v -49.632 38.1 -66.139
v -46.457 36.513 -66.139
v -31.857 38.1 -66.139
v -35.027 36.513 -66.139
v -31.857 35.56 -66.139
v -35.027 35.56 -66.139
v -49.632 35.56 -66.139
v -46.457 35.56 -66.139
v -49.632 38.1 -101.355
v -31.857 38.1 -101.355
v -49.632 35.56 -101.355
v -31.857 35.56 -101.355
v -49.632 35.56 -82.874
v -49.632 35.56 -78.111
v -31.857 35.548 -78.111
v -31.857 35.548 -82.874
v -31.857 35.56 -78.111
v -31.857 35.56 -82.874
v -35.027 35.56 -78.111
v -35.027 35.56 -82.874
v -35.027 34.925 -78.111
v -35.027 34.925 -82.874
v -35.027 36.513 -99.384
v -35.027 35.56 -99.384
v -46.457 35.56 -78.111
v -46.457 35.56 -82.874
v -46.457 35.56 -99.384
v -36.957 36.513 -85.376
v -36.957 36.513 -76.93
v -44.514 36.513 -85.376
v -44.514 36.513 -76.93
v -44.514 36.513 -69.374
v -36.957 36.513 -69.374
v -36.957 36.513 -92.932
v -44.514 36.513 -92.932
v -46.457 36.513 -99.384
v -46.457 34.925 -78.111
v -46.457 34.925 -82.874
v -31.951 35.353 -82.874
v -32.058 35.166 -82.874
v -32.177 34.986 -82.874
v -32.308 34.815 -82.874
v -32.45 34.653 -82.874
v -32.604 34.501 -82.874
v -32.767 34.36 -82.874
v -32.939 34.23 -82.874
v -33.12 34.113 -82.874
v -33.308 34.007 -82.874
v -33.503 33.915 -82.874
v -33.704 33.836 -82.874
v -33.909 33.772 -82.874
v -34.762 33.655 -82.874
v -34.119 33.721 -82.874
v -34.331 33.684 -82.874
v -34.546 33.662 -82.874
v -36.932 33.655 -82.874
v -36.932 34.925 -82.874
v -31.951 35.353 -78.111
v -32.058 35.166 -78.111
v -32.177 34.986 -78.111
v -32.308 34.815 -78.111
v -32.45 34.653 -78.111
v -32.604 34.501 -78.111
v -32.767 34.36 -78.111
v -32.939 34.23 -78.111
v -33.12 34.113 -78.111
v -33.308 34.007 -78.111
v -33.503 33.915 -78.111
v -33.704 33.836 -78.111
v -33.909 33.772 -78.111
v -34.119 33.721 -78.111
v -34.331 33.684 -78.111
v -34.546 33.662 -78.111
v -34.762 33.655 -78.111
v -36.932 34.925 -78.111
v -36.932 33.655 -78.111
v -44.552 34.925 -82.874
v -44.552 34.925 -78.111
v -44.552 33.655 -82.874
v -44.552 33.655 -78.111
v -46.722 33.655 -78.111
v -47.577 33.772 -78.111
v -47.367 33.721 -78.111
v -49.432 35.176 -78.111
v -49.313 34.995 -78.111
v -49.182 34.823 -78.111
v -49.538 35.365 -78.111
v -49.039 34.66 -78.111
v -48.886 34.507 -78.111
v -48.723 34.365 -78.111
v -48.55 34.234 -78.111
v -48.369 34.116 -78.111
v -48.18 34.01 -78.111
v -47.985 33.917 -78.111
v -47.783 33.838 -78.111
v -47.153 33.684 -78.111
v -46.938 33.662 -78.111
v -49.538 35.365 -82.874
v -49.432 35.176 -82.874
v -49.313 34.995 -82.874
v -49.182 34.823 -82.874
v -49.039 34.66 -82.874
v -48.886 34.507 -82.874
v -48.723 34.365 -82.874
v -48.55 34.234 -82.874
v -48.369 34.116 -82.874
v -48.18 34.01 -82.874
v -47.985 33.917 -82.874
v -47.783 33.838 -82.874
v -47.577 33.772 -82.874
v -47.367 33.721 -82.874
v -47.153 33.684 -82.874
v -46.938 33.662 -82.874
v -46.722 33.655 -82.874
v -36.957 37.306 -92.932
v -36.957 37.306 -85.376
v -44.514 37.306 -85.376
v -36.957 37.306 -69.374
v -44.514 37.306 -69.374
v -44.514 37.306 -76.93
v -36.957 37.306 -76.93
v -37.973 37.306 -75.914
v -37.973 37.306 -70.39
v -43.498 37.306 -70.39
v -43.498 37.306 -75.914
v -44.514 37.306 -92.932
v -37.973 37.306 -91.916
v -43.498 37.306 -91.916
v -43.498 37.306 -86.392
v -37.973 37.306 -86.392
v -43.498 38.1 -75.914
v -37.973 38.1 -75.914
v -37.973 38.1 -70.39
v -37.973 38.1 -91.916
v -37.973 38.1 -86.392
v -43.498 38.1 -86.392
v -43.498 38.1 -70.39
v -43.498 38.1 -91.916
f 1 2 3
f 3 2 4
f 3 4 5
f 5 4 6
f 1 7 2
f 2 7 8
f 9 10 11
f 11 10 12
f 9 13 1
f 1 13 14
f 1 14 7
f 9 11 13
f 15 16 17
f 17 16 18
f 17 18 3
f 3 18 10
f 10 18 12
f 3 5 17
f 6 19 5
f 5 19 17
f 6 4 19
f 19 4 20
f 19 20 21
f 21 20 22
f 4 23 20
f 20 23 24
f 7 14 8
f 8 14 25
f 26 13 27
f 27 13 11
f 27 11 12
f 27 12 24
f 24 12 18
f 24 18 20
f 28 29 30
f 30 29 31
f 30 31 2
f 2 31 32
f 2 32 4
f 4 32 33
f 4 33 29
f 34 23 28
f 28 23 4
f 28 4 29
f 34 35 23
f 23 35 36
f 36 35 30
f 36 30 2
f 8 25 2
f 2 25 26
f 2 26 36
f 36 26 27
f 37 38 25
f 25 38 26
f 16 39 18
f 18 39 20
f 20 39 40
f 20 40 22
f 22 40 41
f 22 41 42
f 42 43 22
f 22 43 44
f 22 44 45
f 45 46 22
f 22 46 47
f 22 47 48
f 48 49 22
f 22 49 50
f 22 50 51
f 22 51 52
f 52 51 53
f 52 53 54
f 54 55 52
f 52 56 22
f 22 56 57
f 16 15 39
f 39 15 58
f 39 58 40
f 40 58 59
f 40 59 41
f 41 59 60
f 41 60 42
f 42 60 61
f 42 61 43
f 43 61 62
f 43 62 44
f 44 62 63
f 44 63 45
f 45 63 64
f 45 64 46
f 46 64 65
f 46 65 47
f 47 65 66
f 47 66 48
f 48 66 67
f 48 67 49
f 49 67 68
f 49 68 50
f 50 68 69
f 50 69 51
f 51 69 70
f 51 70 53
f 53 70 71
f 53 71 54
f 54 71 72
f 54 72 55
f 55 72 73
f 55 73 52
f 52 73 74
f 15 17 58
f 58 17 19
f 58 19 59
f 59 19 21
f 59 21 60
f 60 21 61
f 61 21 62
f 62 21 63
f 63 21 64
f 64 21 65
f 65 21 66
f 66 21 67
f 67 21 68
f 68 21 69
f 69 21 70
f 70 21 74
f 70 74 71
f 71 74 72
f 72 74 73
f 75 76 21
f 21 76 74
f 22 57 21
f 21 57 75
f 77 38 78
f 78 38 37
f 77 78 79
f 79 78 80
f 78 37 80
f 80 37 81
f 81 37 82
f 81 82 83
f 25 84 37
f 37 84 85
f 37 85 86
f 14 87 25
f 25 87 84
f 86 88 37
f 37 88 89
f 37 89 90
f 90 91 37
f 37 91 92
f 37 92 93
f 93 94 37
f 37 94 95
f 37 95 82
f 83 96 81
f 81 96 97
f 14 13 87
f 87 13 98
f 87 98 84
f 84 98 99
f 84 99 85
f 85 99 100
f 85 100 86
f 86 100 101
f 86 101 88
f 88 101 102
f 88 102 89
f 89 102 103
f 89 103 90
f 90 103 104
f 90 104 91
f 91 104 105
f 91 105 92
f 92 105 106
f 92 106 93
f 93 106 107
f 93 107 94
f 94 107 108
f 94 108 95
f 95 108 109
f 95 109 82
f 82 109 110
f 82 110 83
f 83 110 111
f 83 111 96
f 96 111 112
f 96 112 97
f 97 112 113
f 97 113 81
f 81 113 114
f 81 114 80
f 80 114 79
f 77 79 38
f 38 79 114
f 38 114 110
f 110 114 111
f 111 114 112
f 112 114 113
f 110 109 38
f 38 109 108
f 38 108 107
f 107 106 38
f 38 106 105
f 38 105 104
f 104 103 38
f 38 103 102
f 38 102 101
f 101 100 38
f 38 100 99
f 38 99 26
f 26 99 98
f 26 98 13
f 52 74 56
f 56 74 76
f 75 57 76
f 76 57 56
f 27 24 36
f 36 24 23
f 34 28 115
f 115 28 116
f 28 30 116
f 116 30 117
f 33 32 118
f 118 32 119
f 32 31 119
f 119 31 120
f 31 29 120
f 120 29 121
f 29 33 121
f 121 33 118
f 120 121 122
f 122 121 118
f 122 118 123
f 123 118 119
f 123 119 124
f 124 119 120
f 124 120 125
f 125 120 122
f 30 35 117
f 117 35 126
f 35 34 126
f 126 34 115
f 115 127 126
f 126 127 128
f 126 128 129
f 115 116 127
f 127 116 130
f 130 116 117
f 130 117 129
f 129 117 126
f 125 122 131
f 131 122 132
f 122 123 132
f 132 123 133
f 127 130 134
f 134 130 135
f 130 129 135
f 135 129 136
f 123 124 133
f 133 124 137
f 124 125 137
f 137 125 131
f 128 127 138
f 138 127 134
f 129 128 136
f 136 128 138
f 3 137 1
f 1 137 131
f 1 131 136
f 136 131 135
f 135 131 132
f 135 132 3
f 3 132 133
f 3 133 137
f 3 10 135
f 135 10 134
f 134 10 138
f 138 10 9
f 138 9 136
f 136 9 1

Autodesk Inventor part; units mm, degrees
ref_plane "YZ Plane" through (0, 0, 0) normal (1, 0, 0) x (0, 1, 0)
ref_plane "XZ Plane" through (0, 0, 0) normal (0, 1, 0) x (-1, 0, 0)
ref_plane "XY Plane" through (0, 0, 0) normal (0, 0, 1) x (1, 0, 0)
sketch "Sketch1" plane through (0, 0, 0) normal (0, 1, 0) x (-1, 0, 0)
  line L0 (0, 0) -> (177.8, 0)
  line L1 (177.8, 0) -> (177.8, -114.3)
  line L2 (177.8, -114.3) -> (0, -114.3)
  line L3 (0, -114.3) -> (0, 0)
  dimension "d0" = 177.8
  dimension "d1" = 114.3
extrude "Extrusion1" add sketch "Sketch1" along normal blind 38.1
sketch "Sketch2" plane through (0, 0, 0) normal (0, -1, 0) x (1, 0, 0)
  line L0 (-177.8, -114.3) -> (-177.8, 0) projected
  line L1 (0, 0) -> (-177.8, 0)
  line L2 (-177.8, 0) -> (-177.8, -114.3)
  line L3 (-177.8, -114.3) -> (0, -114.3)
  line L4 (0, -114.3) -> (0, 0)
  line L5 (-5.08, -5.08) -> (-172.72, -5.08)
  line L6 (-172.72, -5.08) -> (-172.72, -109.22)
  line L7 (-172.72, -109.22) -> (-5.08, -109.22)
  line L8 (-5.08, -109.22) -> (-5.08, -5.08)
  dimension "d4" = 5.08
extrude "Extrusion2" cut sketch "Sketch2" against normal blind 35.56 contours L8 L7 L6 L5
fillet "Fillet1" radius 3.175 4 edges at (-177.8, 38.1, -57.15) (-88.9, 38.1, 0) (-88.9, 38.1, -114.3) (0, 38.1, -57.15)
sketch "Sketch3" plane through (0, 38.1, 0) normal (0, 1, 0) x (1, 0, 0)
  line L0 (-177.8, 114.3) -> (-171.45, 114.3)
  line L1 (-171.45, 114.3) -> (-171.45, 0)
  line L2 (-171.45, 0) -> (-177.8, 0)
  line L3 (-177.8, 0) -> (-177.8, 114.3)
  line L4 (0, 114.3) -> (-177.8, 114.3) projected
  line L5 (-177.8, 114.3) -> (0, 114.3)
  line L6 (0, 114.3) -> (0, 107.95)
  line L7 (0, 107.95) -> (-177.8, 107.95)
  line L8 (-177.8, 107.95) -> (-177.8, 114.3)
  line L9 (-158.75, 100.4887) -> (-100.6475, 100.4887)
  line L10 (-100.6475, 100.4887) -> (-100.6475, 13.8112)
  line L11 (-100.6475, 13.8112) -> (-158.75, 13.8112)
  line L12 (-158.75, 13.8112) -> (-158.75, 100.4887)
  point P0 (0, 0)
  dimension "d8" = 6.35
  dimension "d9" = 6.35
  dimension "d10" = 58.1025
  dimension "d11" = 86.6775
  dimension "d12" = 13.8112
  dimension "d13" = 19.05
extrude "Extrusion3" cut sketch "Sketch3" against normal blind 35.56 contours L9 L10 L11 L12
sketch "Sketch4" plane through (0, 38.1, 0) normal (0, 1, 0) x (1, 0, 0)
  line L0 (-94.2975, 17.78) -> (-81.2088, 17.78)
  line L1 (-91.7575, 20.32) -> (-91.7575, 26.67)
  line L2 (-91.7575, 26.67) -> (-94.2975, 26.67)
  line L3 (-94.2975, 26.67) -> (-94.2975, 17.78)
  line L4 (-94.2975, 17.78) -> (-78.6765, 17.78)
  line L5 (-78.6765, 17.78) -> (-78.6765, 20.32)
  line L6 (-94.2975, 24.2647) -> (-94.2975, 17.78)
  line L7 (-85.6615, 20.32) -> (-85.6615, 24.13)
  line L8 (-85.6615, 24.13) -> (-88.2015, 24.13)
  line L9 (-88.2015, 24.13) -> (-88.2015, 20.32)
  line L10 (-78.6765, 20.32) -> (-85.6615, 20.32)
  line L11 (-88.2015, 20.32) -> (-91.7575, 20.32)
  line L12 (-100.6475, 100.4887) -> (-100.6475, 13.8112) projected
  line L13 (-177.8, 0) -> (0, 0) projected
  line L14 (-94.2975, 27.94) -> (-78.6765, 27.94)
  line L15 (-78.6765, 27.94) -> (-78.6765, 30.7699)
  line L16 (-81.2165, 30.48) -> (-94.2975, 30.48)
  line L17 (-94.2975, 30.48) -> (-94.2975, 27.94)
  line L18 (-83.0828, 27.94) -> (-78.6765, 27.94)
  line L19 (-78.6765, 27.94) -> (-78.6765, 36.83)
  line L20 (-78.6765, 36.83) -> (-81.2165, 36.83)
  line L21 (-81.2165, 36.83) -> (-81.2165, 30.48)
  ellipse E0 centre (-86.487, 41.91) end of major axis (-94.2975, 41.91) minor radius 5.334
  ellipse E1 centre (-86.487, 53.34) end of major axis (-94.2975, 53.34) minor radius 5.334
  line L22 (-94.2975, 60.96) -> (-78.6765, 60.96)
  line L23 (-78.6765, 60.96) -> (-78.6765, 63.754)
  line L24 (-94.2975, 63.754) -> (-94.2975, 60.96)
  ellipse E2 centre (-86.487, 63.754) end of major axis (-94.2975, 63.754) minor radius 7.62 (-78.6765, 63.754) -> (-94.2975, 63.754) ccw
  line L25 (-91.7575, 63.754) -> (-91.7575, 63.5)
  line L26 (-91.7575, 63.5) -> (-81.2165, 63.5)
  line L27 (-81.2165, 63.5) -> (-81.2165, 63.754)
  line L28 (-94.2975, 82.55) -> (-78.6765, 82.55)
  line L29 (-78.6765, 82.55) -> (-78.6765, 80.01)
  line L30 (-78.6765, 80.01) -> (-94.2975, 80.01)
  line L31 (-94.2975, 80.01) -> (-94.2975, 82.55)
  line L32 (-91.7575, 89.535) -> (-78.6765, 89.535)
  line L33 (-78.6765, 89.535) -> (-78.6765, 92.075)
  line L34 (-78.6765, 92.075) -> (-91.7575, 92.075)
  line L35 (-94.2975, 94.8241) -> (-94.2975, 91.9305)
  line L36 (-94.2975, 85.09) -> (-91.7575, 85.09)
  line L37 (-91.7575, 96.52) -> (-94.2975, 96.52)
  line L38 (-94.2975, 96.52) -> (-94.2975, 85.09)
  line L39 (-91.7575, 85.09) -> (-91.7575, 89.535)
  line L40 (-91.7575, 92.075) -> (-91.7575, 96.52)
  spline S0 degree 5 poles (-91.7575, 41.91) (-91.7584, 41.6813) (-91.6944, 41.4527) (-91.5885, 41.2473) (-91.2042, 40.6846) (-90.6636, 40.2564) (-90.282, 40.0177) (-89.3306, 39.5478) (-88.3046, 39.2718) (-87.7026, 39.1679) (-86.487, 39.0641) (-85.2714, 39.1679) (-84.6694, 39.2718) (-83.6435, 39.5478) (-82.692, 40.0176) (-82.3107, 40.2563) (-81.7696, 40.6845) (-81.3858, 41.2473) (-81.2787, 41.4526) (-81.1539, 41.91) (-81.2787, 42.3674) (-81.3858, 42.5727) (-81.7696, 43.1355) (-82.3107, 43.5637) (-82.692, 43.8024) (-83.6435, 44.2722) (-84.6694, 44.5482) (-85.2714, 44.6521) (-86.487, 44.7559) (-87.7026, 44.6521) (-88.3046, 44.5482) (-89.3306, 44.2722) (-90.282, 43.8023) (-90.6636, 43.5636) (-91.2042, 43.1354) (-91.5885, 42.5727) (-91.6944, 42.3673) (-91.7584, 42.1387) (-91.7575, 41.91) knots 0 0 0 0 0 0 0.044471 0.044471 0.044471 0.131758 0.131758 0.131758 0.25 0.25 0.25 0.36824 0.36824 0.36824 0.455522 0.455522 0.455522 0.5 0.5 0.5 0.544478 0.544478 0.544478 0.63176 0.63176 0.63176 0.75 0.75 0.75 0.868242 0.868242 0.868242 0.955529 0.955529 0.955529 1 1 1 1 1 1
  spline S1 degree 5 poles (-91.7575, 53.34) (-91.7584, 53.1113) (-91.6944, 52.8827) (-91.5885, 52.6773) (-91.2042, 52.1146) (-90.6636, 51.6864) (-90.282, 51.4477) (-89.3306, 50.9778) (-88.3046, 50.7018) (-87.7026, 50.5979) (-86.487, 50.4941) (-85.2714, 50.5979) (-84.6694, 50.7018) (-83.6435, 50.9778) (-82.692, 51.4476) (-82.3107, 51.6863) (-81.7696, 52.1145) (-81.3858, 52.6773) (-81.2787, 52.8826) (-81.1539, 53.34) (-81.2787, 53.7974) (-81.3858, 54.0027) (-81.7696, 54.5655) (-82.3107, 54.9937) (-82.692, 55.2324) (-83.6435, 55.7022) (-84.6694, 55.9782) (-85.2714, 56.0821) (-86.487, 56.1859) (-87.7026, 56.0821) (-88.3046, 55.9782) (-89.3306, 55.7022) (-90.282, 55.2323) (-90.6636, 54.9936) (-91.2042, 54.5654) (-91.5885, 54.0027) (-91.6944, 53.7973) (-91.7584, 53.5687) (-91.7575, 53.34) knots 0 0 0 0 0 0 0.044471 0.044471 0.044471 0.131758 0.131758 0.131758 0.25 0.25 0.25 0.36824 0.36824 0.36824 0.455522 0.455522 0.455522 0.5 0.5 0.5 0.544478 0.544478 0.544478 0.63176 0.63176 0.63176 0.75 0.75 0.75 0.868242 0.868242 0.868242 0.955529 0.955529 0.955529 1 1 1 1 1 1
  spline S2 degree 5 poles (-81.2165, 63.754) (-81.2166, 64.309) (-81.2953, 64.8639) (-81.4525, 65.404) (-82.1282, 66.8995) (-83.3585, 68.0474) (-84.3453, 68.5716) (-86.487, 69.0964) (-88.6287, 68.5716) (-89.6155, 68.0474) (-90.8458, 66.8995) (-91.5215, 65.404) (-91.6787, 64.8639) (-91.7574, 64.309) (-91.7575, 63.754) knots 0 0 0 0 0 0 0.170659 0.170659 0.170659 0.5 0.5 0.5 0.829341 0.829341 0.829341 1 1 1 1 1 1
  point P0 (-94.2975, 93.3773)
  point P1 (-88.9, 0)
  point P2 (-93.0275, 85.09)
  dimension "d32" = 5.334
  dimension "d33" = 7.8105
  dimension "d36" = 7.8105
  dimension "d37" = 5.334
  dimension "d42" = 7.62
  dimension "d43" = 2.54
  dimension "d16" = 2.54
  dimension "d17" = 3.556
  dimension "d18" = 2.54
  dimension "d19" = 6.985
  dimension "d20" = 8.89
  dimension "d21" = 6.35
  dimension "d22" = 3.81
  dimension "d23" = 3.81
  dimension "d24" = 6.35
  dimension "d25" = 17.78
  dimension "d26" = 2.54
  dimension "d27" = 2.54
  dimension "d28" = 6.35
  dimension "d29" = 15.621
  dimension "d30" = 6.35
  dimension "d31" = 27.94
  dimension "d34" = 14.1605
  dimension "d35" = 41.91
  dimension "d38" = 14.1605
  dimension "d39" = 53.34
  dimension "d40" = 2.54
  dimension "d41" = 2.54
  dimension "d44" = 6.35
  dimension "d45" = 15.621
  dimension "d46" = 60.96
  dimension "d47" = 2.794
  dimension "d48" = 63.754
  dimension "d49" = 14.1605
  dimension "d50" = 2.54
  dimension "d51" = 15.621
  dimension "d52" = 4.445
  dimension "d53" = 4.445
  dimension "d54" = 2.54
  dimension "d55" = 2.54
  dimension "d56" = 6.35
  dimension "d57" = 80.01
  dimension "d58" = 2.54
  dimension "d59" = 13.081
  dimension "d62" = 3.9688
  dimension "d63" = 3.9688
extrude "Extrusion4" cut sketch "Sketch4" against normal blind 1.27
sketch "Sketch5" plane through (0, 38.1, 0) normal (0, 1, 0) x (1, 0, 0)
  line L0 (-43.4975, 22.3838) -> (-37.973, 22.3838)
  line L1 (-37.973, 22.3838) -> (-37.973, 27.9083)
  line L2 (-37.973, 27.9083) -> (-43.4975, 27.9083)
  line L3 (-43.4975, 27.9083) -> (-43.4975, 22.3838)
  line L4 (-43.4975, 38.3858) -> (-37.973, 38.3858)
  line L5 (-37.973, 38.3858) -> (-37.973, 43.9103)
  line L6 (-37.973, 43.9103) -> (-43.4975, 43.9103)
  line L7 (-43.4975, 43.9103) -> (-43.4975, 38.3858)
  line L8 (-43.4975, 54.3878) -> (-37.973, 54.3878)
  line L9 (-37.973, 54.3878) -> (-37.973, 59.9123)
  line L10 (-37.973, 59.9123) -> (-43.4975, 59.9123)
  line L11 (-43.4975, 59.9123) -> (-43.4975, 54.3878)
  line L12 (-43.4975, 70.3897) -> (-37.973, 70.3897)
  line L13 (-37.973, 70.3897) -> (-37.973, 75.9143)
  line L14 (-37.973, 75.9143) -> (-43.4975, 75.9142)
  line L15 (-43.4975, 75.9142) -> (-43.4975, 70.3897)
  line L16 (-43.4975, 86.3918) -> (-37.973, 86.3918)
  line L17 (-37.973, 86.3918) -> (-37.973, 91.9163)
  line L18 (-37.973, 91.9163) -> (-43.4975, 91.9163)
  line L19 (-43.4975, 91.9163) -> (-43.4975, 86.3918)
  line L20 (0, 114.3) -> (-177.8, 114.3) projected
  line L21 (-177.8, 0) -> (0, 0) projected
  line L22 (-100.6475, 100.4887) -> (-100.6475, 13.8112) projected
  circle A0 centre (-21.9075, 25.4) radius 3.81
  circle A1 centre (-21.9075, 41.275) radius 3.81
  circle A2 centre (-21.9075, 57.15) radius 3.81
  circle A3 centre (-21.9075, 73.025) radius 3.81
  circle A4 centre (-21.9075, 88.9) radius 3.81
  point P0 (-43.4975, 73.152)
  dimension "d64" = 5.5245
  dimension "d65" = 5.5245
  dimension "d66" = 5.5245
  dimension "d67" = 5.5245
  dimension "d68" = 5.5245
  dimension "d69" = 5.5245
  dimension "d70" = 16.002
  dimension "d71" = 16.002
  dimension "d72" = 16.002
  dimension "d73" = 16.002
  dimension "d74" = 22.3837
  dimension "d76" = 57.15
  dimension "d77" = 7.62
  dimension "d78" = 7.62
  dimension "d79" = 7.62
  dimension "d80" = 7.62
  dimension "d81" = 7.62
  dimension "d82" = 15.875
  dimension "d83" = 15.875
  dimension "d84" = 15.875
  dimension "d85" = 15.875
  dimension "d86" = 25.4
  dimension "d87" = 78.74
  dimension "d88" = 78.74
  dimension "d89" = 78.74
  dimension "d90" = 78.74
  dimension "d91" = 78.74
extrude "Extrusion5" cut sketch "Sketch5" against normal blind 25.4
sketch "Sketch6" plane through (0, 35.56, 0) normal (0, -1, 0) x (1, 0, 0)
  circle A0 centre (-21.9075, -88.9) radius 3.81 projected
  circle A1 centre (-21.9075, -88.9) radius 5.08
  circle A2 centre (-21.9075, -73.025) radius 3.81 projected
  circle A3 centre (-21.9075, -73.025) radius 5.08
  circle A4 centre (-21.9075, -57.15) radius 3.81 projected
  circle A5 centre (-21.9075, -57.15) radius 5.08
  circle A6 centre (-21.9075, -41.275) radius 3.81 projected
  circle A7 centre (-21.9075, -41.275) radius 5.08
  circle A8 centre (-21.9075, -25.4) radius 3.81 projected
  circle A9 centre (-21.9075, -25.4) radius 5.08
  line L0 (-43.4975, -86.3918) -> (-43.4975, -91.9163) projected
  line L1 (-43.4975, -91.9163) -> (-37.973, -91.9163)
  line L2 (-37.973, -91.9163) -> (-37.973, -86.3918)
  line L3 (-37.973, -86.3918) -> (-43.4975, -86.3918)
  line L4 (-43.4975, -86.3918) -> (-43.4975, -91.9163)
  line L5 (-43.4975, -75.9142) -> (-37.973, -75.9143) projected
  line L6 (-43.4975, -70.3897) -> (-37.973, -70.3897) projected
  line L7 (-43.4975, -75.9142) -> (-37.973, -75.9142)
  line L8 (-37.973, -75.9142) -> (-37.973, -70.3897)
  line L9 (-37.973, -70.3897) -> (-43.4975, -70.3897)
  line L10 (-43.4975, -70.3897) -> (-43.4975, -75.9142)
  line L11 (-43.4975, -54.3878) -> (-43.4975, -59.9123) projected
  line L12 (-43.4975, -54.3878) -> (-37.973, -54.3878) projected
  line L13 (-43.4975, -59.9123) -> (-37.973, -59.9123)
  line L14 (-37.973, -59.9123) -> (-37.973, -54.3878)
  line L15 (-37.973, -54.3878) -> (-43.4975, -54.3878)
  line L16 (-43.4975, -54.3878) -> (-43.4975, -59.9123)
  line L17 (-43.4975, -38.3858) -> (-43.4975, -43.9103) projected
  line L18 (-37.973, -38.3858) -> (-43.4975, -38.3858) projected
  line L19 (-43.4975, -43.9103) -> (-37.973, -43.9103)
  line L20 (-37.973, -43.9103) -> (-37.973, -38.3858)
  line L21 (-37.973, -38.3858) -> (-43.4975, -38.3858)
  line L22 (-43.4975, -38.3858) -> (-43.4975, -43.9103)
  line L23 (-43.4975, -22.3838) -> (-43.4975, -27.9083) projected
  line L24 (-43.4975, -27.9083) -> (-37.973, -27.9083)
  line L25 (-37.973, -27.9083) -> (-37.973, -22.3838)
  line L26 (-37.973, -22.3838) -> (-43.4975, -22.3838)
  line L27 (-43.4975, -22.3838) -> (-43.4975, -27.9083)
  line L28 (-44.5135, -85.3757) -> (-36.957, -85.3757)
  line L29 (-36.957, -85.3757) -> (-36.957, -92.9323)
  line L30 (-36.957, -92.9323) -> (-44.5135, -92.9323)
  line L31 (-44.5135, -92.9323) -> (-44.5135, -85.3757)
  line L32 (-44.5135, -76.9303) -> (-36.957, -76.9303)
  line L33 (-36.957, -76.9303) -> (-36.957, -69.3737)
  line L34 (-36.957, -69.3737) -> (-44.5135, -69.3737)
  line L35 (-44.5135, -69.3737) -> (-44.5135, -76.9303)
  line L36 (-36.957, -60.9282) -> (-44.5135, -60.9282)
  line L37 (-44.5135, -60.9282) -> (-44.5135, -53.3717)
  line L38 (-44.5135, -53.3717) -> (-36.957, -53.3717)
  line L39 (-36.957, -53.3717) -> (-36.957, -60.9282)
  line L40 (-36.957, -44.9262) -> (-44.5135, -44.9262)
  line L41 (-44.5135, -44.9262) -> (-44.5135, -37.3698)
  line L42 (-44.5135, -37.3698) -> (-36.957, -37.3698)
  line L43 (-36.957, -37.3698) -> (-36.957, -44.9262)
  line L44 (-36.957, -28.9242) -> (-44.5135, -28.9242)
  line L45 (-44.5135, -28.9242) -> (-44.5135, -21.3678)
  line L46 (-44.5135, -21.3678) -> (-36.957, -21.3678)
  line L47 (-36.957, -21.3678) -> (-36.957, -28.9242)
  line L48 (-46.4566, -99.3839) -> (-35.0266, -99.3839)
  line L49 (-35.0266, -99.3839) -> (-35.0266, -14.9289)
  line L50 (-35.0266, -14.9289) -> (-46.4566, -14.9289)
  line L51 (-46.4566, -14.9289) -> (-46.4566, -99.3839)
  point P0 (0, 0)
  point P1 (-40.7352, -92.9323)
  point P2 (-40.7416, -99.3839)
  point P3 (-40.7416, -14.9289)
  point P4 (-40.7352, -21.3678)
  dimension "d97" = 10.16
  dimension "d98" = 10.16
  dimension "d99" = 10.16
  dimension "d100" = 10.16
  dimension "d101" = 10.16
  dimension "d189" = 1.016
  dimension "d190" = 1.016
  dimension "d191" = 1.016
  dimension "d192" = 1.016
  dimension "d193" = 1.016
  dimension "d194" = 11.43
  dimension "d195" = 1.9431
  dimension "d196" = 1.9304
  dimension "d197" = 84.455
  dimension "d198" = 6.4516
  dimension "d199" = 6.4389
extrude "Extrusion6" cut sketch "Sketch6" against normal blind 1.27 contours A1 | A3 | A5 | A7 | A9
extrude "Extrusion9" cut sketch "Sketch6" against normal blind 1.7463 contours L28 L29 L30 L31 | L35 L34 L33 L32 | L36 L37 L38 L39 | L40 L41 L42 L43 | L44 L45 L46 L47
sketch "Sketch8" plane through (0, 35.56, 0) normal (0, -1, 0) x (1, 0, 0)
  line L0 (-100.6475, -13.8112) -> (-100.6475, -100.4887) projected
  line L1 (-100.6475, -13.8112) -> (-158.75, -13.8112)
  line L2 (-158.75, -13.8112) -> (-158.75, -7.4613)
  line L3 (-158.75, -7.4613) -> (-100.6475, -7.4612)
  line L4 (-100.6475, -7.4612) -> (-100.6475, -13.8112)
  line L5 (-158.75, -100.4887) -> (-100.6475, -100.4887) projected
  line L6 (-100.6475, -100.4887) -> (-158.75, -100.4887)
  line L7 (-158.75, -100.4887) -> (-158.75, -107.4737)
  line L8 (-158.75, -107.4737) -> (-100.6475, -107.4737)
  line L9 (-100.6475, -107.4737) -> (-100.6475, -100.4887)
  line L10 (-100.6475, -7.4612) -> (-94.2975, -7.4612)
  line L11 (-94.2975, -7.4612) -> (-94.2975, -13.8112)
  line L12 (-94.2975, -13.8112) -> (-100.6475, -13.8112)
  line L13 (-100.6475, -13.8112) -> (-100.6475, -7.4612)
  line L14 (-100.6475, -100.4887) -> (-94.2975, -100.4887)
  line L15 (-94.2975, -100.4887) -> (-94.2975, -107.4737)
  line L16 (-94.2975, -107.4737) -> (-100.6475, -107.4737)
  line L17 (-100.6475, -107.4737) -> (-100.6475, -100.4887)
  line L18 (-158.75, -100.4887) -> (-165.1, -100.4887)
  line L19 (-165.1, -100.4887) -> (-165.1, -107.4737)
  line L20 (-165.1, -107.4737) -> (-158.75, -107.4737)
  line L21 (-158.75, -107.4737) -> (-158.75, -100.4887)
  line L22 (-158.75, -7.4613) -> (-165.1, -7.4613)
  line L23 (-165.1, -7.4613) -> (-165.1, -13.8112)
  line L24 (-165.1, -13.8112) -> (-158.75, -13.8112)
  line L25 (-158.75, -13.8112) -> (-158.75, -7.4613)
  line L26 (-102.4053, -9.0487) -> (-155.7453, -9.0487)
  line L27 (-155.7453, -9.0487) -> (-155.7453, -12.2237)
  line L28 (-155.7453, -12.2237) -> (-102.4053, -12.2237)
  line L29 (-102.4053, -12.2237) -> (-102.4053, -9.0487)
  point P0 (0, 0)
  dimension "d126" = 6.35
  dimension "d127" = 6.985
  dimension "d128" = 6.35
  dimension "d129" = 6.35
  dimension "d130" = 6.35
  dimension "d131" = 53.34
  dimension "d132" = 3.175
  dimension "d133" = 1.5875
extrude "Extrusion10" cut sketch "Sketch8" against normal blind 1.27 contours L29 L28 L27 L26
extrude "Extrusion11" cut sketch "Sketch6" against normal blind 0.9525 contours L51 L50 L49 L48
sketch "Sketch9" plane through (-177.8, 0, 0) normal (0, 0, 1) x (1, 0, 0)
  line L0 (77.1525, 35.56) -> (19.05, 35.56) projected
  line L1 (172.72, 0) -> (5.08, 0) projected
  line L2 (77.1525, 35.56) -> (127.9525, 35.56)
  line L3 (127.9525, 35.56) -> (127.9525, 0)
  line L4 (127.9525, 0) -> (77.1525, 0)
  line L5 (77.1525, 0) -> (77.1525, 35.56)
  line L6 (86.868, 17.145) -> (106.68, 17.145)
  line L7 (106.68, 17.145) -> (106.68, 15.3035)
  line L8 (106.68, 15.3035) -> (86.868, 15.3035)
  line L9 (86.868, 15.3035) -> (86.868, 17.145)
  line L10 (89.408, 15.3035) -> (97.028, 15.3035)
  line L11 (97.028, 15.3035) -> (97.028, 11.7475)
  line L12 (97.028, 11.7475) -> (89.408, 11.7475)
  line L13 (89.408, 11.7475) -> (89.408, 15.3035)
  line L14 (0, 34.925) -> (177.8, 34.925) projected
  line L15 (0, 0) -> (0, 34.925) projected
  line L16 (177.8, 0) -> (177.8, 34.925) projected
  point P0 (97.028, 15.3035)
  dimension "d144" = 50.8
  dimension "d145" = 19.812
  dimension "d146" = 1.8415
  dimension "d147" = 7.62
  dimension "d148" = 3.556
  dimension "d149" = 2.54
  dimension "d150" = 17.78
  dimension "d187" = 71.12
extrude "Extrusion12" cut sketch "Sketch9" against normal blind 5.08 contours L6 L7 L8 L9 | L8 L11 L12 L13
sketch "Sketch10" plane through (-5.08, 0, -5.08) normal (0, 0, -1) x (-1, 0, 0)
  line L0 (83.312, 11.7475) -> (75.692, 11.7475) projected
  line L1 (83.312, 15.3035) -> (85.852, 15.3035) projected
  line L2 (75.692, 11.7475) -> (83.312, 11.7475)
  line L3 (83.312, 11.7475) -> (83.312, 15.3035)
  line L4 (75.692, 15.3035) -> (75.692, 11.7475)
  line L5 (75.692, 15.3035) -> (66.04, 15.3035) projected
  line L6 (85.852, 17.145) -> (85.852, 15.3035) projected
  line L7 (85.852, 15.3035) -> (85.852, 17.145)
  line L8 (85.852, 17.145) -> (66.04, 17.145)
  line L9 (66.04, 17.145) -> (66.04, 15.3035)
  line L10 (66.04, 15.3035) -> (75.692, 15.3035)
  line L11 (83.312, 15.3035) -> (85.852, 15.3035)
  line L12 (73.787, 9.8425) -> (85.217, 9.8425)
  line L13 (85.217, 9.8425) -> (85.217, 13.3985)
  line L14 (85.217, 13.3985) -> (87.757, 13.3985)
  line L15 (87.757, 13.3985) -> (87.757, 19.05)
  line L16 (87.757, 19.05) -> (64.135, 19.05)
  line L17 (64.135, 19.05) -> (64.135, 13.3985)
  line L18 (64.135, 13.3985) -> (73.787, 13.3985)
  line L19 (73.787, 13.3985) -> (73.787, 9.8425)
  line L20 (73.787, 13.3985) -> (73.787, 15.3035)
  line L21 (85.217, 13.3985) -> (85.217, 15.3035)
  point P0 (-5.08, 0)
  dimension "d153" = 1.905
extrude "Extrusion13" cut sketch "Sketch10" against normal blind 3.175 contours L3 L1 L21 L13 L12 L19 L20 L5 L4 L0 | L1 L6 L8 L9 L5 L20 L18 L17 L16 L15 L14 L21
sketch "Sketch11" plane through (0, 0, -114.3) normal (0, 0, -1) x (-1, 0, 0)
  line L0 (63.5, 23.495) -> (75.946, 23.495)
  line L1 (75.946, 23.495) -> (75.946, 16.383)
  line L2 (75.946, 16.383) -> (63.5, 16.383)
  line L3 (63.5, 16.383) -> (63.5, 23.495)
  line L4 (0, 0) -> (0, 34.925) projected
  circle A0 centre (69.723, 19.939) radius 3.556
  line L5 (0, 34.925) -> (177.8, 34.925) projected
  dimension "d156" = 7.112
  dimension "d157" = 63.5
  dimension "d158" = 12.446
  dimension "d164" = 11.43
  dimension "d219" = 7.112
  dimension "d220" = 3.556
  dimension "d221" = 6.223
extrude "Extrusion14" cut sketch "Sketch11" against normal blind 6.35 contours A0
sketch "Sketch12" plane through (-172.72, 0, -109.22) normal (0, 0, 1) x (1, 0, 0)
  line L0 (97.282, 16.383) -> (108.712, 16.383)
  line L1 (108.712, 16.383) -> (108.712, 23.495)
  line L2 (108.712, 23.495) -> (97.282, 23.495)
  line L3 (97.282, 23.495) -> (97.282, 16.383)
  circle A0 centre (102.997, 19.939) radius 3.556 projected
  line L4 (97.282, 16.383) -> (108.712, 23.495) construction
  line L5 (108.712, 16.383) -> (97.282, 23.495) construction
  point P0 (172.72, 0)
  point P1 (102.997, 16.383)
  point P2 (102.997, 23.495)
  dimension "d161" = 11.43
  dimension "d222" = 7.112
extrude "Extrusion15" cut sketch "Sketch12" against normal blind 2.0574 contours L3 L2 A0 L0 | A0 L2 L1 L0
sketch "Sketch13" plane through (0, 35.56, 0) normal (0, -1, 0) x (1, 0, 0)
  line L0 (-35.0266, -14.9289) -> (-35.0266, -99.3839) projected
  line L1 (-46.4566, -99.3839) -> (-46.4566, -14.9289) projected
  line L2 (-46.4566, -31.4389) -> (-44.5516, -31.4389)
  line L3 (-44.5516, -31.4389) -> (-44.5516, -36.2014)
  line L4 (-44.5516, -36.2014) -> (-46.4566, -36.2014)
  line L5 (-46.4566, -36.2014) -> (-46.4566, -31.4389)
  line L6 (-46.4566, -31.4389) -> (-49.6316, -31.4389)
  line L7 (-49.6316, -31.4389) -> (-49.6316, -36.2014)
  line L8 (-49.6316, -36.2014) -> (-46.4566, -36.2014)
  line L9 (-46.4566, -36.2014) -> (-46.4566, -31.4389)
  line L10 (-35.0266, -31.4389) -> (-36.9316, -31.4389)
  line L11 (-36.9316, -31.4389) -> (-36.9316, -36.2014)
  line L12 (-36.9316, -36.2014) -> (-35.0266, -36.2014)
  line L13 (-35.0266, -36.2014) -> (-35.0266, -31.4389)
  line L14 (-35.0266, -31.4389) -> (-31.8516, -31.4389)
  line L15 (-31.8516, -31.4389) -> (-31.8516, -36.2014)
  line L16 (-31.8516, -36.2014) -> (-35.0266, -36.2014)
  line L17 (-35.0266, -36.2014) -> (-35.0266, -31.4389)
  line L18 (-35.0266, -78.1114) -> (-31.8516, -78.1114)
  line L19 (-31.8516, -78.1114) -> (-31.8516, -82.8739)
  line L20 (-31.8516, -82.8739) -> (-35.0266, -82.8739)
  line L21 (-35.0266, -82.8739) -> (-35.0266, -78.1114)
  line L22 (-35.0266, -78.1114) -> (-36.9316, -78.1114)
  line L23 (-36.9316, -78.1114) -> (-36.9316, -82.8739)
  line L24 (-36.9316, -82.8739) -> (-35.0266, -82.8739)
  line L25 (-35.0266, -82.8739) -> (-35.0266, -78.1114)
  line L26 (-46.4566, -78.1114) -> (-44.5516, -78.1114)
  line L27 (-44.5516, -78.1114) -> (-44.5516, -82.8739)
  line L28 (-44.5516, -82.8739) -> (-46.4566, -82.8739)
  line L29 (-46.4566, -82.8739) -> (-46.4566, -78.1114)
  line L30 (-46.4566, -78.1114) -> (-49.6316, -78.1114)
  line L31 (-49.6316, -78.1114) -> (-49.6316, -82.8739)
  line L32 (-49.6316, -82.8739) -> (-46.4566, -82.8739)
  line L33 (-46.4566, -82.8739) -> (-46.4566, -78.1114)
  line L34 (-46.4566, -14.9289) -> (-35.0266, -14.9289) projected
  line L35 (-35.0266, -99.3839) -> (-46.4566, -99.3839) projected
  point P0 (0, 0)
  dimension "d202" = 1.905
  dimension "d203" = 3.175
  dimension "d204" = 1.905
  dimension "d205" = 3.175
  dimension "d206" = 4.7625
  dimension "d207" = 4.7625
  dimension "d208" = 4.7625
  dimension "d209" = 16.51
  dimension "d210" = 16.51
  dimension "d211" = 16.51
  dimension "d212" = 3.175
  dimension "d213" = 1.905
extrude "Extrusion16" add sketch "Sketch13" along normal blind 1.905 contours L14 L15 L16 L0 | L0 L12 L11 L10 | L2 L3 L4 L1 | L1 L8 L7 L6 | L18 L19 L20 L0 | L0 L24 L23 L22 | L26 L27 L28 L1 | L1 L32 L31 L30
fillet "Fillet2" radius 3.175 4 edges at (-49.6316, 33.655, -33.8201) (-31.8516, 33.655, -33.8201) (-31.8516, 33.655, -80.4926) (-49.6316, 33.655, -80.4926)
sketch "Sketch15" plane through (-44.5516, 35.56, -36.2014) normal (0, 0, -1) x (-1, 0, 0)
  line L0 (1.905, 0) -> (0, 0) projected
  line L1 (0, 0) -> (0, -1.905) projected
  line L2 (1.905, 0) -> (0, 0)
  line L3 (0, 0) -> (0, -0.635)
  line L4 (0, -0.635) -> (1.905, -0.635)
  line L5 (1.905, -0.635) -> (1.905, 0)
  line L6 (-7.62, 0) -> (-9.525, 0) projected
  line L7 (-7.62, 0) -> (-7.62, -1.905) projected
  line L8 (-9.525, 0) -> (-7.62, 0)
  line L9 (-7.62, 0) -> (-7.62, -0.635)
  line L10 (-7.62, -0.635) -> (-9.525, -0.635)
  line L11 (-9.525, -0.635) -> (-9.525, 0)
  point P0 (-44.5516, -35.56)
  dimension "d214" = 0.635
extrude "Extrusion18" cut sketch "Sketch15" along normal blind 50.8 and the other way blind 12.7
sketch "Sketch16" plane through (0, 38.1, 0) normal (0, 1, 0) x (1, 0, 0)
  line L0 (-50.7657, 102.7444) -> (-31.8571, 102.7444)
  line L1 (-31.8571, 102.7444) -> (-31.8571, 65.2503)
  line L2 (-31.8571, 65.2503) -> (-50.7657, 65.2503)
  line L3 (-50.7657, 65.2503) -> (-50.7657, 102.7444)
  line L4 (-228.7011, 132.6427) -> (23.0912, 132.6427)
  line L5 (23.0912, 132.6427) -> (23.0912, -13.2934)
  line L6 (23.0912, -13.2934) -> (-228.7011, -13.2934)
  line L7 (-228.7011, -13.2934) -> (-228.7011, 132.6427)
  point P0 (0, 0)
extrude "Extrusion19" cut sketch "Sketch16" against normal blind 177.8
sketch "Sketch17" plane through (0, 35.56, 0) normal (0, -1, 0) x (1, 0, 0)
  line L0 (-31.8571, -65.2503) -> (-31.8571, -102.7444) projected
  line L1 (-31.8571, -66.1393) -> (-49.6316, -66.1393)
  line L2 (-49.6316, -66.1393) -> (-49.6316, -101.3551)
  line L3 (-49.6316, -101.3551) -> (-31.8571, -101.3551)
  line L4 (-31.8571, -101.3551) -> (-31.8571, -66.1393)
  line L5 (-27.0211, -45.002) -> (-58.7264, -45.002)
  line L6 (-58.7264, -45.002) -> (-58.7264, -117.0923)
  line L7 (-58.7264, -117.0923) -> (-27.0211, -117.0923)
  line L8 (-27.0211, -117.0923) -> (-27.0211, -45.002)
  point P0 (0, 0)
extrude "Extrusion20" cut sketch "Sketch17" against normal blind 177.8
properties part number "LED_slots"
